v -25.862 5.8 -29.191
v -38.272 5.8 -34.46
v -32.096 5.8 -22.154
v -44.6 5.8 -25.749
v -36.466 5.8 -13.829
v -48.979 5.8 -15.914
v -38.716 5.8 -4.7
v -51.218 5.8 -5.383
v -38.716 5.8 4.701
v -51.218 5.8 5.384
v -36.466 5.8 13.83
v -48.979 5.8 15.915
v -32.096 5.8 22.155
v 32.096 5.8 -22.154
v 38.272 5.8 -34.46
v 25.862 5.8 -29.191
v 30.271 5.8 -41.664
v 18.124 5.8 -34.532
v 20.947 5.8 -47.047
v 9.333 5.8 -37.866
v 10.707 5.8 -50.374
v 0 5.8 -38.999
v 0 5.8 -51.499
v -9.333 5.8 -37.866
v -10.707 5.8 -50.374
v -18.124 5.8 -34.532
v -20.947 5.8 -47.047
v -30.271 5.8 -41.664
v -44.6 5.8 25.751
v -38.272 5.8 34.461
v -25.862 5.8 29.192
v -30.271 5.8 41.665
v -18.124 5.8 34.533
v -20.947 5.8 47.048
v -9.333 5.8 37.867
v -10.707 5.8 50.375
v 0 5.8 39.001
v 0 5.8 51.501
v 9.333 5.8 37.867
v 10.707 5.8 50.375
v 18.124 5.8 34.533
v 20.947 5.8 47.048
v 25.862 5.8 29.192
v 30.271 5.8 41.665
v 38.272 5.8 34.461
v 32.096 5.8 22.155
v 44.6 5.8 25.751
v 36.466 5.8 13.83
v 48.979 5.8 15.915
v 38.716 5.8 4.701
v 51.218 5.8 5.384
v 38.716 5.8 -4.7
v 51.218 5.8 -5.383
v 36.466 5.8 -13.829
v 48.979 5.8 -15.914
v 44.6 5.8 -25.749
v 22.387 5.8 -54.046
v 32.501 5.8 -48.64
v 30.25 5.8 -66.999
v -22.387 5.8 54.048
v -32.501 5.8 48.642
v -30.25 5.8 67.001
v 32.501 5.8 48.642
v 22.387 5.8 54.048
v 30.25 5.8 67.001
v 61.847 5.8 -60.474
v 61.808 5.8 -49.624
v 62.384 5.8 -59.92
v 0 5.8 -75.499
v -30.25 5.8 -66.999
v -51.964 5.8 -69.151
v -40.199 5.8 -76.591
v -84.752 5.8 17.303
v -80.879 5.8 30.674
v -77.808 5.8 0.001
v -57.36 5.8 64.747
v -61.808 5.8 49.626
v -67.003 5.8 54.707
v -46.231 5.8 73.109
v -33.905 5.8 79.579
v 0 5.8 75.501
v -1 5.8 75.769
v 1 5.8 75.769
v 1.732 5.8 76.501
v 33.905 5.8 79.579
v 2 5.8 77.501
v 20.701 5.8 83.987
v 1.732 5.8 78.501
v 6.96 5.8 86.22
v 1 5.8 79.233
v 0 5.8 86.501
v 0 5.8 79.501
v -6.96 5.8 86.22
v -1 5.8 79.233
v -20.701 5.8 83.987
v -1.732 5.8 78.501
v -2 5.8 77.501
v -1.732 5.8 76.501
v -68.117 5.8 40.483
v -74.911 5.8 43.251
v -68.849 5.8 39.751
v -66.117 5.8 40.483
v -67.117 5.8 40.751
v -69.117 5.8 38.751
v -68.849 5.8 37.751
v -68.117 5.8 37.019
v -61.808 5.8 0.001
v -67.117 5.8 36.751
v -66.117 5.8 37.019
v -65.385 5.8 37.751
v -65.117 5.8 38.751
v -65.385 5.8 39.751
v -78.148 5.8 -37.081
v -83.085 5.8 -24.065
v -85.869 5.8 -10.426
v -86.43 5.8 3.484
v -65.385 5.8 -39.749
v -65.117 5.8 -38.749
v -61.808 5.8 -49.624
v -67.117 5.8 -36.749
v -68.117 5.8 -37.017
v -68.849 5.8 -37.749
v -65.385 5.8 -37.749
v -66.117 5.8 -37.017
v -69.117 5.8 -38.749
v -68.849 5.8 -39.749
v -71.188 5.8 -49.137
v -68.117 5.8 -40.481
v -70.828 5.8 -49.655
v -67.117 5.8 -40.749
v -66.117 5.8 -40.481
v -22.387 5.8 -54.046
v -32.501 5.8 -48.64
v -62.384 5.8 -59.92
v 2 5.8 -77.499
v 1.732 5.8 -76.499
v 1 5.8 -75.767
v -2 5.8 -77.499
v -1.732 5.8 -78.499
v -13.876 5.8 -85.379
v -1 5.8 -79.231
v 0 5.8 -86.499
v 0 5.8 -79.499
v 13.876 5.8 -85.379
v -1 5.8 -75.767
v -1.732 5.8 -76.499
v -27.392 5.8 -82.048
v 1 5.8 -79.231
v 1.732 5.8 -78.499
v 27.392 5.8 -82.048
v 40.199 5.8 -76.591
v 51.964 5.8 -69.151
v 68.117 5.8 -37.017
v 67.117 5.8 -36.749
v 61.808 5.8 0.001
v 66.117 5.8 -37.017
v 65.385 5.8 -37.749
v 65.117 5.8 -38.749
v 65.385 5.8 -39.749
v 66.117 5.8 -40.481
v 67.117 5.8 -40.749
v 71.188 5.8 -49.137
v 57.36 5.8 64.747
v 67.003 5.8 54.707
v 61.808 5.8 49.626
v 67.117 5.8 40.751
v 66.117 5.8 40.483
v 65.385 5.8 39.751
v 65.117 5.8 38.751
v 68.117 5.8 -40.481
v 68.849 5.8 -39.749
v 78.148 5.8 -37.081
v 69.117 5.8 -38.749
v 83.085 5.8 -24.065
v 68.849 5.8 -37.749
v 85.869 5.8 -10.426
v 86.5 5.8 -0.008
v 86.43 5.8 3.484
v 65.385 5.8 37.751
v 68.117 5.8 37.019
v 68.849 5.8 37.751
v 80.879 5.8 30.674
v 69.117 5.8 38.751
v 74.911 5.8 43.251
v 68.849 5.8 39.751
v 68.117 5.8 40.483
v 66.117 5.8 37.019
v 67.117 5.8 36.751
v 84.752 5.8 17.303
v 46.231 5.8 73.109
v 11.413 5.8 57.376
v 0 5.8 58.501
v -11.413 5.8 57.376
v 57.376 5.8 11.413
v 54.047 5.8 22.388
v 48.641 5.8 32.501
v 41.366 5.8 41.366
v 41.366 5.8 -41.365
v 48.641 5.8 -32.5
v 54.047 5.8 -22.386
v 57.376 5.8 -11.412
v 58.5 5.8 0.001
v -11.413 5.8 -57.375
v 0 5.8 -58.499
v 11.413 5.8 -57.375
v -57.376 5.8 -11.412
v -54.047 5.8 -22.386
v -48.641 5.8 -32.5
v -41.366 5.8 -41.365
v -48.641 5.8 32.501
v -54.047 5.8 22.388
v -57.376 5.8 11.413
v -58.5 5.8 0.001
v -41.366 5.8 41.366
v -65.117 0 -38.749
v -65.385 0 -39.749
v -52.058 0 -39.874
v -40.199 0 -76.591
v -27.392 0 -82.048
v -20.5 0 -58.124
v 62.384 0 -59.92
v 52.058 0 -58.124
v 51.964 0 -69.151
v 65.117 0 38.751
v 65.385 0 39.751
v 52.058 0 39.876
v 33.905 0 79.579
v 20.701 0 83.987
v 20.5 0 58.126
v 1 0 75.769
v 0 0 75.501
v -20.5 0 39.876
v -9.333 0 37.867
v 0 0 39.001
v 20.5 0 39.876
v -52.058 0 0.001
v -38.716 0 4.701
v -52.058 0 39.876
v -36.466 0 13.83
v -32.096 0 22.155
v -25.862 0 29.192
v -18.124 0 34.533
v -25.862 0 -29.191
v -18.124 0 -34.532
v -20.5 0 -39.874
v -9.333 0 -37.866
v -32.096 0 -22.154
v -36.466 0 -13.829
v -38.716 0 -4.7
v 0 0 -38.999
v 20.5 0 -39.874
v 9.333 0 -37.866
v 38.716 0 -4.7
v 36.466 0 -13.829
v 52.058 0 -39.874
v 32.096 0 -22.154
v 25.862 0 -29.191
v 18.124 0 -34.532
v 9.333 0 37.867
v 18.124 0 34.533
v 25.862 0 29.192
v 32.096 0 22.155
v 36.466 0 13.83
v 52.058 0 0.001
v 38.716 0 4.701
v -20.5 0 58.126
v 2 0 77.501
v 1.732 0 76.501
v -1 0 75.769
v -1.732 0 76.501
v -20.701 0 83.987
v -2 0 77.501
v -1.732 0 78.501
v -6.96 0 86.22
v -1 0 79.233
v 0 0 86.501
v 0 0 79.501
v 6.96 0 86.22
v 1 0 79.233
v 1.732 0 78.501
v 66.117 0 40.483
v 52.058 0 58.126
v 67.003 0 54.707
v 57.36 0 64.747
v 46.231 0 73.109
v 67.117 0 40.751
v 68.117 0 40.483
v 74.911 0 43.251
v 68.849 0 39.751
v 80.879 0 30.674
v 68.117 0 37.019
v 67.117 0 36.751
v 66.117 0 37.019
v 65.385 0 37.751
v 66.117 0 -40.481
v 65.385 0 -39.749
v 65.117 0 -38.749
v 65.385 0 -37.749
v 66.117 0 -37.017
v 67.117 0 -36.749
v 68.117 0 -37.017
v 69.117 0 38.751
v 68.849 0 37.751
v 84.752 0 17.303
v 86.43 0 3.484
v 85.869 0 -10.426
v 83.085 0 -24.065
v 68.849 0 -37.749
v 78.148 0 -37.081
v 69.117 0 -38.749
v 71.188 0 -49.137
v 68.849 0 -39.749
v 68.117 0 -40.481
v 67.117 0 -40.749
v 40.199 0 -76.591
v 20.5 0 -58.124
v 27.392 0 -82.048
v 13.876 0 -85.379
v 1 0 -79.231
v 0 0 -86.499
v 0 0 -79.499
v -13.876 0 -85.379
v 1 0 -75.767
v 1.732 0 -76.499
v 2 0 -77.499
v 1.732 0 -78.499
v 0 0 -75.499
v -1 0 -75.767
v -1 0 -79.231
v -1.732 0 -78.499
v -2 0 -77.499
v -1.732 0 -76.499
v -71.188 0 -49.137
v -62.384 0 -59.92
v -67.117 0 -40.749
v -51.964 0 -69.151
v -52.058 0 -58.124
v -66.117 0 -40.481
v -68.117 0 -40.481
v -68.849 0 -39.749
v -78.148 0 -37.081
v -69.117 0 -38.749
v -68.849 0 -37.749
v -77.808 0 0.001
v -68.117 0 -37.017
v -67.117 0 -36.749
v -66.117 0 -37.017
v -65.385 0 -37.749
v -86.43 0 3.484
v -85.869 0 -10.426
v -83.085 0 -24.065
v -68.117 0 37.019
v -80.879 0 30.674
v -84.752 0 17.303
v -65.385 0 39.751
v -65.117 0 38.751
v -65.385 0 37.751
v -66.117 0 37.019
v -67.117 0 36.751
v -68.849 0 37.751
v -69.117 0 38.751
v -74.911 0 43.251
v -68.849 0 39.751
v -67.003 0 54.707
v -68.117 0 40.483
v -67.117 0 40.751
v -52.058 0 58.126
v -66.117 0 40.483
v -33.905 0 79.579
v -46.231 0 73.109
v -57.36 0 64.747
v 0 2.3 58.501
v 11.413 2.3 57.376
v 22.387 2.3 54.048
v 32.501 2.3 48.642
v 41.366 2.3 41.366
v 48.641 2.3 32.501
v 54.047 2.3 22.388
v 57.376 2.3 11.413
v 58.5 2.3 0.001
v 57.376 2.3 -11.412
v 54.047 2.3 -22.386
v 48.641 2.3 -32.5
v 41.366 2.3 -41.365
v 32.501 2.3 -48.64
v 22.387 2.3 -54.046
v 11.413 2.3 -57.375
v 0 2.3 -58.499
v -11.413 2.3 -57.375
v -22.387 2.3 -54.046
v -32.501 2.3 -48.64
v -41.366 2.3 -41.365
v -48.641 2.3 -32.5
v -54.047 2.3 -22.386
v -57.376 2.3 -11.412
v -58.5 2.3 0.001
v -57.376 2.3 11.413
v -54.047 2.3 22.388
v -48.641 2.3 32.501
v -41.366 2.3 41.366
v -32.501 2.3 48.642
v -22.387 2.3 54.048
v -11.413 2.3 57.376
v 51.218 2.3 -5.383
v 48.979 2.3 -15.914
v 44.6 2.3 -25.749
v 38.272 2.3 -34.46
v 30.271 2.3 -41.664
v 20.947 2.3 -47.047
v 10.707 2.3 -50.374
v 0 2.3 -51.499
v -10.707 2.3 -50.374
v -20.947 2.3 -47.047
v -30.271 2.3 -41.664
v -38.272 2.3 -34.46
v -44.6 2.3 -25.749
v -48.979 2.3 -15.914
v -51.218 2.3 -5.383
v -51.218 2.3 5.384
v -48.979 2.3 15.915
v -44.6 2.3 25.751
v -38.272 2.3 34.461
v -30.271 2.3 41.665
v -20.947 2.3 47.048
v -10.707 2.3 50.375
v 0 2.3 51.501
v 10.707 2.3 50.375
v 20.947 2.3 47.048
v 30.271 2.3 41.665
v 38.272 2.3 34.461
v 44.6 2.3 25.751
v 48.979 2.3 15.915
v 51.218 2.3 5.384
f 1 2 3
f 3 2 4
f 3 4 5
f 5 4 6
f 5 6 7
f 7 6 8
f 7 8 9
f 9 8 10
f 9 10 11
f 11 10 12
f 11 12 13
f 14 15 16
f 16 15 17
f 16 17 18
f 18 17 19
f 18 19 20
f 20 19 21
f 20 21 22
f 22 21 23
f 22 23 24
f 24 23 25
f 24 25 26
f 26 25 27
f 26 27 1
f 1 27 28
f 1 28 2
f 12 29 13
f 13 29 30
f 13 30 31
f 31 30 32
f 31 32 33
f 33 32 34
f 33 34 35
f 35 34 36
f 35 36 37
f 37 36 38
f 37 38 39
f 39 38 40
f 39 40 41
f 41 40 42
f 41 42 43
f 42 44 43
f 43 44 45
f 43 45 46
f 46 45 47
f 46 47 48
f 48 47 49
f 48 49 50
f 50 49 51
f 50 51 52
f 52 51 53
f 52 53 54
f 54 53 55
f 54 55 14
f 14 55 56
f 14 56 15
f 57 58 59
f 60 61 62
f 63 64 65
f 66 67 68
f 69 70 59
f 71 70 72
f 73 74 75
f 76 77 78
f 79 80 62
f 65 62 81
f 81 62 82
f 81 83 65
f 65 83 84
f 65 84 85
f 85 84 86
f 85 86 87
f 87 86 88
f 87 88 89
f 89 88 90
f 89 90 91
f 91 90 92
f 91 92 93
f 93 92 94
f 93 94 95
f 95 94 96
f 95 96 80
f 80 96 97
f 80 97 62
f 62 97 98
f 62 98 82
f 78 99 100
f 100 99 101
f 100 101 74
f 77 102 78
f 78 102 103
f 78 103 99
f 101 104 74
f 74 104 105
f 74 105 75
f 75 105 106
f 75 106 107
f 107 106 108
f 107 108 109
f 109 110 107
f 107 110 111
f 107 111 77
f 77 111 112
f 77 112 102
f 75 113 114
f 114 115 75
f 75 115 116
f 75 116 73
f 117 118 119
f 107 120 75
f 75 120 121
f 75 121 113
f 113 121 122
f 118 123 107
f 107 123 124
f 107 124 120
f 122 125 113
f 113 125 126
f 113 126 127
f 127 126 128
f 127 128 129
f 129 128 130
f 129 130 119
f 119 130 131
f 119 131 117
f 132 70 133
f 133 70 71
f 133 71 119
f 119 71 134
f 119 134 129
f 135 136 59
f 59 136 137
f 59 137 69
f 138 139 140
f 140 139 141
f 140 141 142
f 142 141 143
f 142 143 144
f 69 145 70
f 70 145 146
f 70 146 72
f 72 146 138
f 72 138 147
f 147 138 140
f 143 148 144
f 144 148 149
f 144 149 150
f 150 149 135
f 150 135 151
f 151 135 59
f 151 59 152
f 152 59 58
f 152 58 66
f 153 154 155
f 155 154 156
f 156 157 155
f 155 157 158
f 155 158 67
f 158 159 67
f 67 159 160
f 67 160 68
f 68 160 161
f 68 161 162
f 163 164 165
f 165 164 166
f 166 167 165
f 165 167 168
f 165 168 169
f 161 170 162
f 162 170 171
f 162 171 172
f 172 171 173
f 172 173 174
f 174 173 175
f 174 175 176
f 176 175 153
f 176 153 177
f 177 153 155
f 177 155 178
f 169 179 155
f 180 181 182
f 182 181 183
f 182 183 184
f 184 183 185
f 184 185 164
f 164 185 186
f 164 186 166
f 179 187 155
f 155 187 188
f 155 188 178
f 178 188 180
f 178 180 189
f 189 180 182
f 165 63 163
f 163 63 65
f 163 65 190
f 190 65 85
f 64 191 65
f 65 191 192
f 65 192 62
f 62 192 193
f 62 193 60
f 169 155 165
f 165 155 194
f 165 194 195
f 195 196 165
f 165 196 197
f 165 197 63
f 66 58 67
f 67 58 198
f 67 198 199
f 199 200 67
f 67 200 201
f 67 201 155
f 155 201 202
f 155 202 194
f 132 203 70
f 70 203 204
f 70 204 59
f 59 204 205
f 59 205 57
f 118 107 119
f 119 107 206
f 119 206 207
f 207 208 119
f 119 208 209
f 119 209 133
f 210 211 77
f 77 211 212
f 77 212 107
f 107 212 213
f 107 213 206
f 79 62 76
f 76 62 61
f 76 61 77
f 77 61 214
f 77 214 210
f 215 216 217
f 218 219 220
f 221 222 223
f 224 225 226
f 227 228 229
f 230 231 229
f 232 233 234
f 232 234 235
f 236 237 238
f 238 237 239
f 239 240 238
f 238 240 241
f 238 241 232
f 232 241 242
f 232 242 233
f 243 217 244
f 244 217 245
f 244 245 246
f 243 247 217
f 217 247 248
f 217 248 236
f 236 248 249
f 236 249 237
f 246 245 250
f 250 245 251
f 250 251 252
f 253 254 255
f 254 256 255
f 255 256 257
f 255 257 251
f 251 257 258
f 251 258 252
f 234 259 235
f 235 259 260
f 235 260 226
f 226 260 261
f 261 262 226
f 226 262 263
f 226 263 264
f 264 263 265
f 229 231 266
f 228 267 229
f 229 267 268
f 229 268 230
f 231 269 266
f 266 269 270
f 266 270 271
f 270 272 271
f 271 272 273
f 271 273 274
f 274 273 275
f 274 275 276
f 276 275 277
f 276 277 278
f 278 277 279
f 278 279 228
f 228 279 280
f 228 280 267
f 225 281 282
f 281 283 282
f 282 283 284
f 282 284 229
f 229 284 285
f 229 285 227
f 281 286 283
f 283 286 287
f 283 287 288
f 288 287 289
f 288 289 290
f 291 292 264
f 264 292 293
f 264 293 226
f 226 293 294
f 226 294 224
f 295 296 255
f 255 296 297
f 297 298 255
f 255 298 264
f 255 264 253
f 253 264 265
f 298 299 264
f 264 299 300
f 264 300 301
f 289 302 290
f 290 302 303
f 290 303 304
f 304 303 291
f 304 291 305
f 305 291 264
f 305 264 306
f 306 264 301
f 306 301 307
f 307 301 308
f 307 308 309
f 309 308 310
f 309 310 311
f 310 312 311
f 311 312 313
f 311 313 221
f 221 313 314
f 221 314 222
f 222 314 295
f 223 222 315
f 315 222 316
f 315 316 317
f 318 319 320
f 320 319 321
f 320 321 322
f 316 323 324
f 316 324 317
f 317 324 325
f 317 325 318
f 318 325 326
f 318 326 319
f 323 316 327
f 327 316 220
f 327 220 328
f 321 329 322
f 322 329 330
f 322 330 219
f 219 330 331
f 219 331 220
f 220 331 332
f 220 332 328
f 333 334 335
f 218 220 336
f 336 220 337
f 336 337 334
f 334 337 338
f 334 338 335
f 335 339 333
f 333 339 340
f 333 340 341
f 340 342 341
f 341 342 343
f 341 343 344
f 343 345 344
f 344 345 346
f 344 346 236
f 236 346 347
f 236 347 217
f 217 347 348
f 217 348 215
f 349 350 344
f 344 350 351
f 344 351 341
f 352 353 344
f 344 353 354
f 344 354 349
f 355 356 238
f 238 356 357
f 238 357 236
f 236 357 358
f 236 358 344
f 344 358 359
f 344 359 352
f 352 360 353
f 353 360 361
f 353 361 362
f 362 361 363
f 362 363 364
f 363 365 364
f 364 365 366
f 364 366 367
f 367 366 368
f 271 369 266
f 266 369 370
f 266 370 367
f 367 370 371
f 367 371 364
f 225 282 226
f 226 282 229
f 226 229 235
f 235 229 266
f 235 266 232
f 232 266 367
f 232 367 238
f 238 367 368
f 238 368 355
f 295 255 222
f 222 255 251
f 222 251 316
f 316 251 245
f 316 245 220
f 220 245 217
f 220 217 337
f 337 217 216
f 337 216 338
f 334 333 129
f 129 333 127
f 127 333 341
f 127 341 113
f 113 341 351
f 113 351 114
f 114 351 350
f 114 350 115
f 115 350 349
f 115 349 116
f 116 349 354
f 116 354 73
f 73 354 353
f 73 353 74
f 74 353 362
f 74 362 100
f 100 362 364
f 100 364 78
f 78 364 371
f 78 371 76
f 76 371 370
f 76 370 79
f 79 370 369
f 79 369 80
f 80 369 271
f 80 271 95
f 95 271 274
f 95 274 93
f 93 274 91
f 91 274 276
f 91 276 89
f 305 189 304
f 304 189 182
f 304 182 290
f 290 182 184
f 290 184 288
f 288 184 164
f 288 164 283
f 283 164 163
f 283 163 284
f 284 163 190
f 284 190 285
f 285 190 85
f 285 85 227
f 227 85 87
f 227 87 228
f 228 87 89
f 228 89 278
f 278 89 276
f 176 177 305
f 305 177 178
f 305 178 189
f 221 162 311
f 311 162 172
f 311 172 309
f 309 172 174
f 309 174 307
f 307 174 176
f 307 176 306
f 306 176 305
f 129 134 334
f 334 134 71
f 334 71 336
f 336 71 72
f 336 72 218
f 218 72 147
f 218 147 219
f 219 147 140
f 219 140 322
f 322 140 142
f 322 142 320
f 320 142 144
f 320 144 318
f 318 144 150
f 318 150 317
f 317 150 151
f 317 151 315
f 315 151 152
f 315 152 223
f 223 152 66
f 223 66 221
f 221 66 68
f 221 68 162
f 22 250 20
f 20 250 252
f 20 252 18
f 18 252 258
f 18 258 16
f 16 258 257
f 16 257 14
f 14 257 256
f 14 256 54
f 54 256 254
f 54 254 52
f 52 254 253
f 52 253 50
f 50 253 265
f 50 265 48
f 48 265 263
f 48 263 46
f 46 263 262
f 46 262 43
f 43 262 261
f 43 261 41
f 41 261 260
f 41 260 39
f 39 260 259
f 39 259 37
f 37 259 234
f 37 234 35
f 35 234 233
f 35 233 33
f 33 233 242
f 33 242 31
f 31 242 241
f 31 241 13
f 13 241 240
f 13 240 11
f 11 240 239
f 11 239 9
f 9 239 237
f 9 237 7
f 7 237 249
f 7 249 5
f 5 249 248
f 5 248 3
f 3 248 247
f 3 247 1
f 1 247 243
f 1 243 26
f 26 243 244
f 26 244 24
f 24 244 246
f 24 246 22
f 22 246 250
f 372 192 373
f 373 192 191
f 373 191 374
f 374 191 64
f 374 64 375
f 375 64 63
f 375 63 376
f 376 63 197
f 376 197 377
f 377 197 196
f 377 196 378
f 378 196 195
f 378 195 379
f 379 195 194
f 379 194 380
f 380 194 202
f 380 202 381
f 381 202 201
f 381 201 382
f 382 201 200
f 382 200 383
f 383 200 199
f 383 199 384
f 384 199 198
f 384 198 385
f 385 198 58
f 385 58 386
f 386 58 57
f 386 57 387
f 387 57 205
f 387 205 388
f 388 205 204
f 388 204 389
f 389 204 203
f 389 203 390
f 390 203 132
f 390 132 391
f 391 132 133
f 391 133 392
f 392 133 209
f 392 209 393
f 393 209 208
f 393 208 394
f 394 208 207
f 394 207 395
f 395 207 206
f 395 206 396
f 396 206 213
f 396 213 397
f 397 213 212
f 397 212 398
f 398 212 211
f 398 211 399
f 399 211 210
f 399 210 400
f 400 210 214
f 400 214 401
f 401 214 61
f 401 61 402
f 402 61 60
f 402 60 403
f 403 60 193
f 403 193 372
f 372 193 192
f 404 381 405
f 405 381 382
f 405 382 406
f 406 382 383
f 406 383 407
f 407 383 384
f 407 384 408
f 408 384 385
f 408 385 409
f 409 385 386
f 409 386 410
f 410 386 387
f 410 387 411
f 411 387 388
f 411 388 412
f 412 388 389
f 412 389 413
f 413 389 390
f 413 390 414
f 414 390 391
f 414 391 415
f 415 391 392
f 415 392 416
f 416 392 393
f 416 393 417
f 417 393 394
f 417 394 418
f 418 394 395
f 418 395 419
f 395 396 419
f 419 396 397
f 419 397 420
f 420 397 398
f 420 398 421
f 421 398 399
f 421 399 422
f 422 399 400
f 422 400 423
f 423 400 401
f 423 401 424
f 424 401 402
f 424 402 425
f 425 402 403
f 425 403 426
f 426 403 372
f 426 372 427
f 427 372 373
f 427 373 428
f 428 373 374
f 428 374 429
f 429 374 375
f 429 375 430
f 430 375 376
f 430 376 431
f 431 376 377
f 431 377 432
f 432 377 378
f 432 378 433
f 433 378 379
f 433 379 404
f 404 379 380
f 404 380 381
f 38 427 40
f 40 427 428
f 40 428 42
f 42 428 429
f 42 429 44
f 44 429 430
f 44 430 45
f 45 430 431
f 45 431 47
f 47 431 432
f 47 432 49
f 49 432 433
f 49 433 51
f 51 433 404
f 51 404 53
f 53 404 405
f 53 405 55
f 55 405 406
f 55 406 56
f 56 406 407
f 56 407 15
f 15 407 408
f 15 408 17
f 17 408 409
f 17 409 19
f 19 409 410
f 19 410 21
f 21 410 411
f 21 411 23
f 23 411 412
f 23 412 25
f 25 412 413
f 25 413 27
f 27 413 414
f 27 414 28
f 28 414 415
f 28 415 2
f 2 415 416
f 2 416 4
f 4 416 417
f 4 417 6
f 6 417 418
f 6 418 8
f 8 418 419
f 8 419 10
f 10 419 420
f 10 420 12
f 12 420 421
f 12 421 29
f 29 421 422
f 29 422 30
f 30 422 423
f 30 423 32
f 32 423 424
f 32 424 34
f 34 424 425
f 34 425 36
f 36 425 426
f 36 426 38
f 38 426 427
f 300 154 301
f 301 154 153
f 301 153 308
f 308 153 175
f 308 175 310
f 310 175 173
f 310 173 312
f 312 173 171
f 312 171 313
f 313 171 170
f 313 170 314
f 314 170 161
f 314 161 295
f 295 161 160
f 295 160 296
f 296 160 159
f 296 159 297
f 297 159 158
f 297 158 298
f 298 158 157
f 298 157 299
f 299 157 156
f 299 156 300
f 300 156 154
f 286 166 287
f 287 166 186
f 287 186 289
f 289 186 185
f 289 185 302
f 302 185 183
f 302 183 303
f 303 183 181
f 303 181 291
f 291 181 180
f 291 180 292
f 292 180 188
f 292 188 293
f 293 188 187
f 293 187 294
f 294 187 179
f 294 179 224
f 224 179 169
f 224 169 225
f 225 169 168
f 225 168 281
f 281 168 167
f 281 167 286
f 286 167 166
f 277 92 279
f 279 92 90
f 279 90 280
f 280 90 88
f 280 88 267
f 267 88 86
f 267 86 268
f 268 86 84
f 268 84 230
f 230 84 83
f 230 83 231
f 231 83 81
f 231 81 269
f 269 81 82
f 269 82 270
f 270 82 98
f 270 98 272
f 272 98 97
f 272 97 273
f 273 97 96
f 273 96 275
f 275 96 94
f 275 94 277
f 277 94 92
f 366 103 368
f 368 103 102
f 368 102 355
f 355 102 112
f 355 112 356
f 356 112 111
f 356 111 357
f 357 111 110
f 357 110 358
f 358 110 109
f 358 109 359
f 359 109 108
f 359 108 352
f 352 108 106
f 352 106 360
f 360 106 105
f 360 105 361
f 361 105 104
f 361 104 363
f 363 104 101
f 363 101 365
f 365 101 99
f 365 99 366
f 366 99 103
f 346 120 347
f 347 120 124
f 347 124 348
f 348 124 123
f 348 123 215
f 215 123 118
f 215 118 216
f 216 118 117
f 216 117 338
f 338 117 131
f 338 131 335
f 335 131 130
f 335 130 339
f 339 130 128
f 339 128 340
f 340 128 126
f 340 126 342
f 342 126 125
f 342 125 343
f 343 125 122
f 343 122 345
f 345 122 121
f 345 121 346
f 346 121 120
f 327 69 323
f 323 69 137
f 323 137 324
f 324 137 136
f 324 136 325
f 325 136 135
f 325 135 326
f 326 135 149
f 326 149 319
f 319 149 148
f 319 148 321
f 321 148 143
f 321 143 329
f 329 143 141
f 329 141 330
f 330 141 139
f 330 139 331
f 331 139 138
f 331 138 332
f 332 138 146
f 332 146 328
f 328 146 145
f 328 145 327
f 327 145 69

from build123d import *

# Parameters (mm, degrees)
SKETCH1_R           = 86.5
SKETCH1_R_2         = 39
BOSS_EXTRUDE1_DEPTH = 5.8
SKETCH2_R           = 58.5
SKETCH2_R_2         = 51.5
CUT_EXTRUDE1_DEPTH  = 3.5
SKETCH3_R           = 2
CUT_EXTRUDE2_DEPTH  = 6.8


with BuildPart() as part:
    # Sketch1 → Boss-Extrude1 (new body)
    with BuildSketch(Plane(origin=(0, 0, 0), x_dir=(1, 0, 0), z_dir=(0, 1, 0))):
        Circle(SKETCH1_R)
        Circle(SKETCH1_R_2, mode=Mode.SUBTRACT)
    extrude(amount=BOSS_EXTRUDE1_DEPTH)

    # Sketch2 → Cut-Extrude1 (cut)
    with BuildSketch(Plane(origin=(0, 5.8, 0), x_dir=(1, 0, 0), z_dir=(0, 1, 0))):
        Circle(SKETCH2_R)
        Circle(SKETCH2_R_2, mode=Mode.SUBTRACT)
    extrude(amount=-CUT_EXTRUDE1_DEPTH, mode=Mode.SUBTRACT)

    # Sketch3 → Cut-Extrude2 (cut, through all)
    with BuildSketch(Plane(origin=(0, 5.8, 0), x_dir=(1, 0, 0), z_dir=(0, 1, 0))):
        with Locations((0, 77.5)):
            Circle(SKETCH3_R)
        with Locations((67.116968793, 38.75)):
            Circle(SKETCH3_R)
        with Locations((67.116968793, -38.75)):
            Circle(SKETCH3_R)
        with Locations((0, -77.5)):
            Circle(SKETCH3_R)
        with Locations((-67.116968793, -38.75)):
            Circle(SKETCH3_R)
        with Locations((-67.116968793, 38.75)):
            Circle(SKETCH3_R)
    extrude(amount=-CUT_EXTRUDE2_DEPTH, mode=Mode.SUBTRACT)


solid = part.part
